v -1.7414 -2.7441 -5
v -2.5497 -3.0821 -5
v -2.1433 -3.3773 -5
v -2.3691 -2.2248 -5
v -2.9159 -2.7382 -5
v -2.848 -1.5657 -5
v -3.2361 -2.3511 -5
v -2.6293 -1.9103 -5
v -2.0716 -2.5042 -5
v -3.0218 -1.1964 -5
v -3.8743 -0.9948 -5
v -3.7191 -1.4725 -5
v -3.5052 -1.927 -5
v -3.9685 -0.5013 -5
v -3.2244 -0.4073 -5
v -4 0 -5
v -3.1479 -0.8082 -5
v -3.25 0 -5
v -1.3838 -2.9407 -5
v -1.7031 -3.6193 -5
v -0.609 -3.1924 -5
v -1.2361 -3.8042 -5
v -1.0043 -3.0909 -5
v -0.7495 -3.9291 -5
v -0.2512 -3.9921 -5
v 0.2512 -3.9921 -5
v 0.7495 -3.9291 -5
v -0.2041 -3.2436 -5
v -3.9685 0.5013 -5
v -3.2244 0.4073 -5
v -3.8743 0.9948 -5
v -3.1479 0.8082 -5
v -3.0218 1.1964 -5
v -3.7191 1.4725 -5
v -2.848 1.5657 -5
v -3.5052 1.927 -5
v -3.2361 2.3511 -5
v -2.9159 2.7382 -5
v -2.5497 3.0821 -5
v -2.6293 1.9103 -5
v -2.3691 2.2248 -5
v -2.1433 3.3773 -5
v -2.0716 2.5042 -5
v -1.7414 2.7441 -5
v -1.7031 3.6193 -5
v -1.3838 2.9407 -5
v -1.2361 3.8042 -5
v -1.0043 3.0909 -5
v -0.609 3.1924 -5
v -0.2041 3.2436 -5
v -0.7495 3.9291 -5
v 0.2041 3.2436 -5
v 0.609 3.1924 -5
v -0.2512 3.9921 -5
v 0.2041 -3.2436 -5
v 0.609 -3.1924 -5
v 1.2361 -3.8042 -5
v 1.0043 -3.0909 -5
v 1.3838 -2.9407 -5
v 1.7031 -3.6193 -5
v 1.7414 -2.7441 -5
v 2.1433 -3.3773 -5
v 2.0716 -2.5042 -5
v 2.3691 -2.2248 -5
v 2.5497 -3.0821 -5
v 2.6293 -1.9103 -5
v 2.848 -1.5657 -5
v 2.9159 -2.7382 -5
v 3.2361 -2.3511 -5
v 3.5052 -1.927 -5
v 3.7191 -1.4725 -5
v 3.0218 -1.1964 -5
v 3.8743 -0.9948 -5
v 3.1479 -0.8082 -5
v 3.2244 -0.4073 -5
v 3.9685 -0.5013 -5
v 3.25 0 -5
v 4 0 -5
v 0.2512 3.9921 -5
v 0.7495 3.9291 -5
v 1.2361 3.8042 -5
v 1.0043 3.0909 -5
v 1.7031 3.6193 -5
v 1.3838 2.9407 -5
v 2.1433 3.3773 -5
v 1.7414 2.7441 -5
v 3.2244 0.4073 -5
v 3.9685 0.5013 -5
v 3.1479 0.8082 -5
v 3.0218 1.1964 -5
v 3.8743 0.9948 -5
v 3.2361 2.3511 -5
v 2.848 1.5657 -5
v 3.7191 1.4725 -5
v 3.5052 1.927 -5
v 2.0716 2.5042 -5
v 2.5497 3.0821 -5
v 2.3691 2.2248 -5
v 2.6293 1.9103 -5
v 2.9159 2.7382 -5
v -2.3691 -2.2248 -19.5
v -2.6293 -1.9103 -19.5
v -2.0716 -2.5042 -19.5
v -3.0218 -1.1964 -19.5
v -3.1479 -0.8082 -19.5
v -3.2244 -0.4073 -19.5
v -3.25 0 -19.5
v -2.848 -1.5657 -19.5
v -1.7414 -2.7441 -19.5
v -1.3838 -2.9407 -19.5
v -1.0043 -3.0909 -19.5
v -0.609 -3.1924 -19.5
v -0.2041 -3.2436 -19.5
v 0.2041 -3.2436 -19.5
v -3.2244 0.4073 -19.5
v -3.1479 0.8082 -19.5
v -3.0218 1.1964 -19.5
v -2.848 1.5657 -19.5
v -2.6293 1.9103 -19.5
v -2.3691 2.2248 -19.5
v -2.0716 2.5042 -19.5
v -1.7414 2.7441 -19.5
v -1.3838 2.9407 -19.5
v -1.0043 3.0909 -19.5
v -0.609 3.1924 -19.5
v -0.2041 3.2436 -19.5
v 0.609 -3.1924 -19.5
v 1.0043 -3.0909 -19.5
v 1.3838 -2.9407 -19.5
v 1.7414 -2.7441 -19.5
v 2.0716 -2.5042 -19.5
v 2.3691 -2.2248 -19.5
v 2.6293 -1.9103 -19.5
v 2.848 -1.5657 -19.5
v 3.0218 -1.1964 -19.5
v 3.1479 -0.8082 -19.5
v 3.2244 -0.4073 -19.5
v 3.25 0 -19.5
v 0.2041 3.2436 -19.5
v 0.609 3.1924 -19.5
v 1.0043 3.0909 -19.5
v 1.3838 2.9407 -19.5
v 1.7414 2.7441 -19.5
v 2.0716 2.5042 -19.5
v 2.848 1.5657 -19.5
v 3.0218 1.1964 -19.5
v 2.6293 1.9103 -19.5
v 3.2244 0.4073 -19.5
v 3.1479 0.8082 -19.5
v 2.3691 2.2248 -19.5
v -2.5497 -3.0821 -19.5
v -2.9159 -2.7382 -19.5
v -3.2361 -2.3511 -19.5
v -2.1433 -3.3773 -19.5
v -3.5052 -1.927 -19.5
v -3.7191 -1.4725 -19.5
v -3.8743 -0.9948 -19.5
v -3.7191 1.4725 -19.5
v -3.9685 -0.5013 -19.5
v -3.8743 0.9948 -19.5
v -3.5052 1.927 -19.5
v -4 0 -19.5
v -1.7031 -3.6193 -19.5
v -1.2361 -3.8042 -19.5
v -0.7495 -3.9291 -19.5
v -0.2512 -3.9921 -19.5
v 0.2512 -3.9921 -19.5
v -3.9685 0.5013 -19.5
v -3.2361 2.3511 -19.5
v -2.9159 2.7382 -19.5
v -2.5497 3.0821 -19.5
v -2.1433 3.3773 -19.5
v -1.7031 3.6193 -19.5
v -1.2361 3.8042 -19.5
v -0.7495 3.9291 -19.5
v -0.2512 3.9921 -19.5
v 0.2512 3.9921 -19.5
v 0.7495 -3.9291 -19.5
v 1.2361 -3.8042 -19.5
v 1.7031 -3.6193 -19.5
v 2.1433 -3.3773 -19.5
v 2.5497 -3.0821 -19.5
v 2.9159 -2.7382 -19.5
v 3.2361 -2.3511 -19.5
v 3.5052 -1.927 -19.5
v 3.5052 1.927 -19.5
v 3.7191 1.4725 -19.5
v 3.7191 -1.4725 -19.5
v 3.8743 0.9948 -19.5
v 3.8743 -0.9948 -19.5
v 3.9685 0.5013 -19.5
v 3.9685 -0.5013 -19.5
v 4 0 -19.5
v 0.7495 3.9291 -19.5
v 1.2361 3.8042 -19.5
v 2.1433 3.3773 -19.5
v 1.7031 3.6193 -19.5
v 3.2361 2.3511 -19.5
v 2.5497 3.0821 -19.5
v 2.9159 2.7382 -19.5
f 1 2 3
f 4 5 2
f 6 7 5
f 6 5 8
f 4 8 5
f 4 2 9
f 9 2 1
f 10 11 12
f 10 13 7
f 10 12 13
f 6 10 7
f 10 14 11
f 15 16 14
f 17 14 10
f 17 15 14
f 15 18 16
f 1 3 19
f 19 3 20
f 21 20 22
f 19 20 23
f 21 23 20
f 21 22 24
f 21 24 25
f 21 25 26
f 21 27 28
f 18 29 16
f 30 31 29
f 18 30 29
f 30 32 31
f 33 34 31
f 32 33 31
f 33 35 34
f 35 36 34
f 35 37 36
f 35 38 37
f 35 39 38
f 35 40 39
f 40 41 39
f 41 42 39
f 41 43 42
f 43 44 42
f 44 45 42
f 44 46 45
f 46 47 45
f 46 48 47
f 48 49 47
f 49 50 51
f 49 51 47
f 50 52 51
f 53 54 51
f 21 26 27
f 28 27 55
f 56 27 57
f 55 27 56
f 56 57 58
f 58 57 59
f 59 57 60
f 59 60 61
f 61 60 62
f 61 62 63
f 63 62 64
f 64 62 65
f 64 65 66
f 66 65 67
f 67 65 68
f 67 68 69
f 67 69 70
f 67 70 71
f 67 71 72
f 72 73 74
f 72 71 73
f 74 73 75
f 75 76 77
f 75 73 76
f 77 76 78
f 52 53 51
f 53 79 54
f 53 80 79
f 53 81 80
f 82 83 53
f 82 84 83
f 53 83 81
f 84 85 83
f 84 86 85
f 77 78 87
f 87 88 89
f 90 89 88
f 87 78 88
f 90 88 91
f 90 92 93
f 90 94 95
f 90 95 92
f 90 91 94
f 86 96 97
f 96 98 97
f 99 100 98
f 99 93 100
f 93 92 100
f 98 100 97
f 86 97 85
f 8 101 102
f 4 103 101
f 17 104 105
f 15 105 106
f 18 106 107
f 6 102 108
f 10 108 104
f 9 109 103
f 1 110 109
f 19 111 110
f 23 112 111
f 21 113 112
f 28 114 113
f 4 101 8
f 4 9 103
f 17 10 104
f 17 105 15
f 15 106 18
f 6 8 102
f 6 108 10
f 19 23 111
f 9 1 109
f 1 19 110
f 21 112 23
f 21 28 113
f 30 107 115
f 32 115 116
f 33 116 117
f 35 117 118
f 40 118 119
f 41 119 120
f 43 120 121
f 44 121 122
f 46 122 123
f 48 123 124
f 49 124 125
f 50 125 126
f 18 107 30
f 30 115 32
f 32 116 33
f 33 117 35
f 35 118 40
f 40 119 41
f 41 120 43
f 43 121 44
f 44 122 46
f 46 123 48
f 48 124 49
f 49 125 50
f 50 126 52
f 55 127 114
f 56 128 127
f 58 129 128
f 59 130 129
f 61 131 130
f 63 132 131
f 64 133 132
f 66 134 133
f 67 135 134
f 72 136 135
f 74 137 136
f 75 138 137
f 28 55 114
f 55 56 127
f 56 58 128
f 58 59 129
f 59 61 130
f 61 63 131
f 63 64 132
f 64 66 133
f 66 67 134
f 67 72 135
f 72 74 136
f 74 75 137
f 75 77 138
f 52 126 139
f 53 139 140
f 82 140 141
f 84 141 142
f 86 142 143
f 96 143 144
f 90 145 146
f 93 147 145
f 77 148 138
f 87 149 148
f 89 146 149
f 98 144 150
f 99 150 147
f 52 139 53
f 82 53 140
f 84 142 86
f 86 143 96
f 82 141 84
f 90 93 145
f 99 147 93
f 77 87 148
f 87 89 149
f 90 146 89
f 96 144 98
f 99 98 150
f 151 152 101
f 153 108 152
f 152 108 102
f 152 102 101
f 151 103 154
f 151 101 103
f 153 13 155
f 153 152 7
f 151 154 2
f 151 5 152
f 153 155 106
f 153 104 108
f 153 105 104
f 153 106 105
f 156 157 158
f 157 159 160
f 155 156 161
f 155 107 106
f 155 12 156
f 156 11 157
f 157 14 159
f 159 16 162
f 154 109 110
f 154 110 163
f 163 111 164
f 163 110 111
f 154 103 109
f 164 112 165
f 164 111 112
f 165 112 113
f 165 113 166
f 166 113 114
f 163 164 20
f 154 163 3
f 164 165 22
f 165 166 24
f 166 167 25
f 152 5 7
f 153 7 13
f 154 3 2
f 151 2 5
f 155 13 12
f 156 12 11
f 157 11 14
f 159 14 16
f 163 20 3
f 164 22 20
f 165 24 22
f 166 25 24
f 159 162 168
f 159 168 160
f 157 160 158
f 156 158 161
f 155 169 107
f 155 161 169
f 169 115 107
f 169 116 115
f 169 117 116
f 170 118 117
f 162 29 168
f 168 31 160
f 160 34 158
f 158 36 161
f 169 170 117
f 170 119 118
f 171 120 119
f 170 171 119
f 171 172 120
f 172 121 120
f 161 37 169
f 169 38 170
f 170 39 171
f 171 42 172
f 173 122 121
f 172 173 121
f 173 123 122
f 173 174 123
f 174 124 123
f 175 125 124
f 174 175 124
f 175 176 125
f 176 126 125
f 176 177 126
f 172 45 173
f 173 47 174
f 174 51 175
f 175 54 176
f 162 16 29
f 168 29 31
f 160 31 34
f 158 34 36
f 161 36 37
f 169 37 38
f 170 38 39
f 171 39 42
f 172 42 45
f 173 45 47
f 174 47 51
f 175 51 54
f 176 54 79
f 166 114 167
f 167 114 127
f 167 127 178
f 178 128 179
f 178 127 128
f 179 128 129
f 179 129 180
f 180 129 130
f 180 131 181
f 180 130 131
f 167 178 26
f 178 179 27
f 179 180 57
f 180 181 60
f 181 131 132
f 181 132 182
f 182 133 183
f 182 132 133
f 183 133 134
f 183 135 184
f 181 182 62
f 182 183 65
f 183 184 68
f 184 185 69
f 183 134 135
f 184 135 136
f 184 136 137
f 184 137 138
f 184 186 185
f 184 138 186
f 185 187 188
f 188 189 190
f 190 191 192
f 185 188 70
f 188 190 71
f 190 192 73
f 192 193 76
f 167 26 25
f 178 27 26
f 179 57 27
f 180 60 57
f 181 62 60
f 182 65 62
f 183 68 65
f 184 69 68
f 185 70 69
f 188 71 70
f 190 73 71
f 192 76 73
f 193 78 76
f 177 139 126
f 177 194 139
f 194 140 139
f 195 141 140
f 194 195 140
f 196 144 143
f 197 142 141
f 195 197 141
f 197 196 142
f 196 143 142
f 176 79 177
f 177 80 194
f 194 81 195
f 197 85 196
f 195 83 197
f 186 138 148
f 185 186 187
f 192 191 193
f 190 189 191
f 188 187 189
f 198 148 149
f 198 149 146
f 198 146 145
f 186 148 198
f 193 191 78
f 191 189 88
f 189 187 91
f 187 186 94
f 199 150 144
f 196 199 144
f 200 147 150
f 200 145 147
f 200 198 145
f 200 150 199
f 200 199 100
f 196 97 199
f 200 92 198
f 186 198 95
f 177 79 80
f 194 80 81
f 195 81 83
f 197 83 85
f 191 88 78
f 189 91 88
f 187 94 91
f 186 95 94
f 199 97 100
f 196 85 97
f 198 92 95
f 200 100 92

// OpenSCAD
$fn = 50;

difference() {
	union() {
		translate(v = [0, 0, -19.5]) {
			cylinder(h = 22.5, r = 4.0);
		}
	}
	union() {
		translate(v = [0, 0, 0]) {
			rotate(a = [0, 0, 0]) {
				difference() {
					union() {
						translate(v = [0, 0, -5]) {
							linear_extrude(height = 5) {
								polygon(points = [[5.914249999999999, 0.0], [2.957125, 5.1218907443321156], [-2.9571249999999982, 5.1218907443321156], [-5.914249999999999, 7.242867331857232e-16], [-2.9571250000000022, -5.121890744332115], [2.9571249999999956, -5.121890744332118]]);
							}
						}
					}
					union();
				}
			}
		}
		#cylinder(h = 3, r = 6.25);
		#translate(v = [0, 0, -100.0]) {
			cylinder(h = 200, r = 3.25);
		}
	}
}
